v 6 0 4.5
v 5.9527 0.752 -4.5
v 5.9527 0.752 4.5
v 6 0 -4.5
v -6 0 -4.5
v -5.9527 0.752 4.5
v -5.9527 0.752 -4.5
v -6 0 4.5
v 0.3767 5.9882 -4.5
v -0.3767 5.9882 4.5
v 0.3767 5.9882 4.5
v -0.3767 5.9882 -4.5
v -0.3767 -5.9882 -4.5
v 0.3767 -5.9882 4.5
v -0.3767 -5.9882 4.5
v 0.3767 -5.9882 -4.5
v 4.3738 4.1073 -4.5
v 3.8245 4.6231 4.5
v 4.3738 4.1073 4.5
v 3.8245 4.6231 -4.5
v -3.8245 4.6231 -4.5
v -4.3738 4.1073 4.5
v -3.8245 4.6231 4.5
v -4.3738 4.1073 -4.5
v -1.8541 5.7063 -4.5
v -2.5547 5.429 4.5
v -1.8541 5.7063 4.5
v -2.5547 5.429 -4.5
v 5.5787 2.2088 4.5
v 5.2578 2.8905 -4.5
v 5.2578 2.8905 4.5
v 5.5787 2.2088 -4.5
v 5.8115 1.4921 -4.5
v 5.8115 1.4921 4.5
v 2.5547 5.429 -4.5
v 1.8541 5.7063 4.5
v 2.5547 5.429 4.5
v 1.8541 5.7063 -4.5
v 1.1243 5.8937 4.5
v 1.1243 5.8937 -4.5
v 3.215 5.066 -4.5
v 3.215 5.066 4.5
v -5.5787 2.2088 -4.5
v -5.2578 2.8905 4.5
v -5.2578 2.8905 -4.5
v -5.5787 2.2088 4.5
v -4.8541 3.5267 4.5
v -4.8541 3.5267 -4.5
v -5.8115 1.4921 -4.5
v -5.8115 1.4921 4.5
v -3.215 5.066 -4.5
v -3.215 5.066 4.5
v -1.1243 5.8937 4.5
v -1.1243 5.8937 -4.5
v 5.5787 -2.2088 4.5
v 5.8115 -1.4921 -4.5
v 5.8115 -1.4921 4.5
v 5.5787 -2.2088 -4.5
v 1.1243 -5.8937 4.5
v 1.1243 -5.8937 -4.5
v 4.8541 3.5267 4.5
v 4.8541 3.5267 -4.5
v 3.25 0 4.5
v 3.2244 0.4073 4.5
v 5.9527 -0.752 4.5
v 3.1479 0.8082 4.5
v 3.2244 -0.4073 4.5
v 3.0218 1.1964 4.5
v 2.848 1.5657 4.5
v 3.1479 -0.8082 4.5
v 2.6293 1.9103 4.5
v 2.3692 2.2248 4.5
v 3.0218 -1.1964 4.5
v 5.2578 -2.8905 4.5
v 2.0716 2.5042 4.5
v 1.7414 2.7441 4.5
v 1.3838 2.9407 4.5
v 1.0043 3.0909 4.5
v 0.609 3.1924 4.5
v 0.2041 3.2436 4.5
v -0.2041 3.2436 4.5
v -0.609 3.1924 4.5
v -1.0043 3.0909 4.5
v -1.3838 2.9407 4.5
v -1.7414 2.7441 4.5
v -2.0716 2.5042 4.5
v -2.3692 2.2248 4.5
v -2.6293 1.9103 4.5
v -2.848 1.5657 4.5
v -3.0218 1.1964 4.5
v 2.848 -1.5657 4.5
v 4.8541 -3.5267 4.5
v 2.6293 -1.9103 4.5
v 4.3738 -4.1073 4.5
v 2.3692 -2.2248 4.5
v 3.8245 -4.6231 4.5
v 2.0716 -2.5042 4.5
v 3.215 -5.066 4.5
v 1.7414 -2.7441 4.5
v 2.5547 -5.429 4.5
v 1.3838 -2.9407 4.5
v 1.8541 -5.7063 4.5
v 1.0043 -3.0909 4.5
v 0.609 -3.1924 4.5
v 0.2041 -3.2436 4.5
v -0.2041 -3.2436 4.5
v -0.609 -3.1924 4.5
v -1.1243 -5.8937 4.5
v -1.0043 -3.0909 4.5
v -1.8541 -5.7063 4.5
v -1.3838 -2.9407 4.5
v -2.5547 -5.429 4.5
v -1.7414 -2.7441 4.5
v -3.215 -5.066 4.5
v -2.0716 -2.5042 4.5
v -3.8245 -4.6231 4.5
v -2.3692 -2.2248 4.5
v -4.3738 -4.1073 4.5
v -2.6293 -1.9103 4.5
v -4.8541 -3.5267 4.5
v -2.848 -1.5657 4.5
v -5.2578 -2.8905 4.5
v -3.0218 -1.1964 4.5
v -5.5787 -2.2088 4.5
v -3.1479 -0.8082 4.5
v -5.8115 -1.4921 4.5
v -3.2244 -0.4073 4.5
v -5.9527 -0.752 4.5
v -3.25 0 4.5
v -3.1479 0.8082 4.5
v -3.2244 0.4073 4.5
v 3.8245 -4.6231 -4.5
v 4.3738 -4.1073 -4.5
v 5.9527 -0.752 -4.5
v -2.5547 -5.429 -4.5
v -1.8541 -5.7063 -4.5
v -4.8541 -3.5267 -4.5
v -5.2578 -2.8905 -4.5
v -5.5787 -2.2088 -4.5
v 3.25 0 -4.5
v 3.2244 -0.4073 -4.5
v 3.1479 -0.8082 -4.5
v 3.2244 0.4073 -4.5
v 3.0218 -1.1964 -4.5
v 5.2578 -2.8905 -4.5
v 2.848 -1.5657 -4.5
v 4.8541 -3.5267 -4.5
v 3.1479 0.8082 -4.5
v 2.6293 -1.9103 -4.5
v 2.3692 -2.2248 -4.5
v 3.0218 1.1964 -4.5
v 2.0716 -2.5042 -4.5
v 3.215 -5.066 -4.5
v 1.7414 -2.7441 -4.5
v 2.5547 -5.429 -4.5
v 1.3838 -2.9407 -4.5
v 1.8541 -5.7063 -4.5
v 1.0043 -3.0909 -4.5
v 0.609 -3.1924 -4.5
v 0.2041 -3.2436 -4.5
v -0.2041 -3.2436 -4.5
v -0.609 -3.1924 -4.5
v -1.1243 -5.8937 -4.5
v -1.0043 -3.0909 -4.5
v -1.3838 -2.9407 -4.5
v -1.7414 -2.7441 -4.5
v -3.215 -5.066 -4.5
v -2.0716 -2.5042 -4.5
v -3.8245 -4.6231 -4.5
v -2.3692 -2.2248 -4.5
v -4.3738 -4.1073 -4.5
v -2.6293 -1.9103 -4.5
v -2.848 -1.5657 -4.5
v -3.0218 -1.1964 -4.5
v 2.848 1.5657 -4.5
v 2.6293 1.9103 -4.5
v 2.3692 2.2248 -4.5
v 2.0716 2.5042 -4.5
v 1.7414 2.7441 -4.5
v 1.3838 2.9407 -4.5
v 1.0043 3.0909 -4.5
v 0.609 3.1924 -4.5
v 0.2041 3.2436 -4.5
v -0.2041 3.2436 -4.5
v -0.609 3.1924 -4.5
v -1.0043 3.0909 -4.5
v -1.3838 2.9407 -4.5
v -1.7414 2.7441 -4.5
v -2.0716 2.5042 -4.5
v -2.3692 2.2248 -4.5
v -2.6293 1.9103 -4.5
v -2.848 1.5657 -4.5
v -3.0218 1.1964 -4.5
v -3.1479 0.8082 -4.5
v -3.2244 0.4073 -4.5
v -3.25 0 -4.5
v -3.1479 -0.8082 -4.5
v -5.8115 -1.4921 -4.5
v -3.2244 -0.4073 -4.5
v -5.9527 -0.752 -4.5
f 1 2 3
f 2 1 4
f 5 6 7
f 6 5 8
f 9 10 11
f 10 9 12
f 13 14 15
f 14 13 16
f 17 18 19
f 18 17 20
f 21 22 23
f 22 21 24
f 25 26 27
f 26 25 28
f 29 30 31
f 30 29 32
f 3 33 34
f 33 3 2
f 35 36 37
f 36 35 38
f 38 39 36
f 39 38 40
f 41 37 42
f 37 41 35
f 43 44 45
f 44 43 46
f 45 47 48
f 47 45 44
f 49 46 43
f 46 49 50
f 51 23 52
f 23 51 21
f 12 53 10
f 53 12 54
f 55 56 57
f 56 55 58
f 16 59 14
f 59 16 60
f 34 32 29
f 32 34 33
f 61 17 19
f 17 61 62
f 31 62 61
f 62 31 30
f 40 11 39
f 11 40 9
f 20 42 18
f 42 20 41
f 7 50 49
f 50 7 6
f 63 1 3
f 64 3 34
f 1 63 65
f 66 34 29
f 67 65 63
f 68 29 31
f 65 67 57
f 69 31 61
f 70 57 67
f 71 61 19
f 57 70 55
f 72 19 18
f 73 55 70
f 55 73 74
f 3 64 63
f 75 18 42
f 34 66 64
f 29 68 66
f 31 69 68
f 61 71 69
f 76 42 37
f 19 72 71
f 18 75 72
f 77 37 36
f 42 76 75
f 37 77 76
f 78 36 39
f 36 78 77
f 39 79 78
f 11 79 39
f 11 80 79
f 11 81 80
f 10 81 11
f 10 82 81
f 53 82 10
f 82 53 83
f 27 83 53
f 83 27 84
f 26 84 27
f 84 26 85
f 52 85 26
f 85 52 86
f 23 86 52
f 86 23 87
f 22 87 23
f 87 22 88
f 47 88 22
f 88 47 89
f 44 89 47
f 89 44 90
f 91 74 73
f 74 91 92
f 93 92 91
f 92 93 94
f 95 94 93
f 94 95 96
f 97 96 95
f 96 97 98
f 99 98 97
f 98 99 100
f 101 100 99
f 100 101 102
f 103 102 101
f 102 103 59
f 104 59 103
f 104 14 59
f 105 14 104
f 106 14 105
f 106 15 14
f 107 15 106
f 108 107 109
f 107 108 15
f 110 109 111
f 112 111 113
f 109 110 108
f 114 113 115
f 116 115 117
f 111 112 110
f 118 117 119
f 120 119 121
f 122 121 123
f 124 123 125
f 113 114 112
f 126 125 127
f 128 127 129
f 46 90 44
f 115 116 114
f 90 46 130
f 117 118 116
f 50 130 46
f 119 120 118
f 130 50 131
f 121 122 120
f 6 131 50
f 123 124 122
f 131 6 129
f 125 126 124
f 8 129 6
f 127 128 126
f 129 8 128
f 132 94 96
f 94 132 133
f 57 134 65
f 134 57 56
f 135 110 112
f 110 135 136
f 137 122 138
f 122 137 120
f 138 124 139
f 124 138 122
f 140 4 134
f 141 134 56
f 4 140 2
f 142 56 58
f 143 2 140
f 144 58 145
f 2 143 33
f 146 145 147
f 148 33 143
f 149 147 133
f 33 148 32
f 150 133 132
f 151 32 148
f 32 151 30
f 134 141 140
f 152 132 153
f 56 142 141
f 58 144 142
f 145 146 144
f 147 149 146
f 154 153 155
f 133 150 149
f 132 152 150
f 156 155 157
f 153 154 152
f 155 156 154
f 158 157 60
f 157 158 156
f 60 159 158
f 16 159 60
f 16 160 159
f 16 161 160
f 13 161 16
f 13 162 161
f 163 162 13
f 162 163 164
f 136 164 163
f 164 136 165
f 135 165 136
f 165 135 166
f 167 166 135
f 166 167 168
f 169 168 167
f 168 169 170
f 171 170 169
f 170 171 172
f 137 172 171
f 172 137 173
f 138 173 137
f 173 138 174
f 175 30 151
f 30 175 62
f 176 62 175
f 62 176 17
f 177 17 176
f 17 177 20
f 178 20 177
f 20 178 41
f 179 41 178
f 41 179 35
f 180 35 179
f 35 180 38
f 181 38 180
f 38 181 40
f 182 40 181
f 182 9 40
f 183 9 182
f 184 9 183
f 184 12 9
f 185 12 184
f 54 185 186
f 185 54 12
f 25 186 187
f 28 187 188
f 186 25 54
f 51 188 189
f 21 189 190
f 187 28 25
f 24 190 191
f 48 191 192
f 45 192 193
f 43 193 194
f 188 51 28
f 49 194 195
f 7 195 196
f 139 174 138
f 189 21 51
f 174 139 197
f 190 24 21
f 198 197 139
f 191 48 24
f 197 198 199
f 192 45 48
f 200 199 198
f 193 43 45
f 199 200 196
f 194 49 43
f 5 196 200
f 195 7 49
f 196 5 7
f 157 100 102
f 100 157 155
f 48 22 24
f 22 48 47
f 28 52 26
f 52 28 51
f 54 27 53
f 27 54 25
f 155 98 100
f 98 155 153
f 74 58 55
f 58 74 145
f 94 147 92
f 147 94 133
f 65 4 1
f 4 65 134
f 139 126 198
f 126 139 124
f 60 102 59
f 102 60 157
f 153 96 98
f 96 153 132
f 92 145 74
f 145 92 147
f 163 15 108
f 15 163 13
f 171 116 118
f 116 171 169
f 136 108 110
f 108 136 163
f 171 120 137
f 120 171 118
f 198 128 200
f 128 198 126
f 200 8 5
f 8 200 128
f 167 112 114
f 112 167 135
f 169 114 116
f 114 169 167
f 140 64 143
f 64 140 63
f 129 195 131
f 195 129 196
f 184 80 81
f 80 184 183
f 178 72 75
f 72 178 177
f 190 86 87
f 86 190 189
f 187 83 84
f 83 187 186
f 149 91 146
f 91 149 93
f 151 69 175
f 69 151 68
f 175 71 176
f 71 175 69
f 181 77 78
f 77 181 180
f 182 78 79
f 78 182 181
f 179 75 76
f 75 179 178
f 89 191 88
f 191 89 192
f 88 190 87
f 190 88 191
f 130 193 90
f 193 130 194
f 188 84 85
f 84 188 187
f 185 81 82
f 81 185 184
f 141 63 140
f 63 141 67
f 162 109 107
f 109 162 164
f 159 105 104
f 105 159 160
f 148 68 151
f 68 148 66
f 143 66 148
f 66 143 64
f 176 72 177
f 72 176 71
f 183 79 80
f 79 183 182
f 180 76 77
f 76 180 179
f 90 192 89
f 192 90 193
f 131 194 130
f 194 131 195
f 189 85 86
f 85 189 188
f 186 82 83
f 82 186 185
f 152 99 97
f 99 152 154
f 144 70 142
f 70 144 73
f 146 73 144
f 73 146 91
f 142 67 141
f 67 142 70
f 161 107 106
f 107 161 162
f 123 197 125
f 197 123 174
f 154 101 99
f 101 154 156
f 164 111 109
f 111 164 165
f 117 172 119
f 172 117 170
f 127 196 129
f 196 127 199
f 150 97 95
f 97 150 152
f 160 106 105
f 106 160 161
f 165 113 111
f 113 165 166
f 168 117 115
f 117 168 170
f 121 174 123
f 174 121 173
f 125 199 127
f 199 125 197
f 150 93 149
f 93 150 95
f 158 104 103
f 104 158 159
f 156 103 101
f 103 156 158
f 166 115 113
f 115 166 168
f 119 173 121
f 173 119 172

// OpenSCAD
$fn = 50;


difference() {
	union() {
		translate(v = [0, 0, -4.5000000000]) {
			cylinder(h = 9, r = 6.0000000000);
		}
	}
	union() {
		translate(v = [0, 0, -100.0000000000]) {
			cylinder(h = 200, r = 3.2500000000);
		}
	}
}
